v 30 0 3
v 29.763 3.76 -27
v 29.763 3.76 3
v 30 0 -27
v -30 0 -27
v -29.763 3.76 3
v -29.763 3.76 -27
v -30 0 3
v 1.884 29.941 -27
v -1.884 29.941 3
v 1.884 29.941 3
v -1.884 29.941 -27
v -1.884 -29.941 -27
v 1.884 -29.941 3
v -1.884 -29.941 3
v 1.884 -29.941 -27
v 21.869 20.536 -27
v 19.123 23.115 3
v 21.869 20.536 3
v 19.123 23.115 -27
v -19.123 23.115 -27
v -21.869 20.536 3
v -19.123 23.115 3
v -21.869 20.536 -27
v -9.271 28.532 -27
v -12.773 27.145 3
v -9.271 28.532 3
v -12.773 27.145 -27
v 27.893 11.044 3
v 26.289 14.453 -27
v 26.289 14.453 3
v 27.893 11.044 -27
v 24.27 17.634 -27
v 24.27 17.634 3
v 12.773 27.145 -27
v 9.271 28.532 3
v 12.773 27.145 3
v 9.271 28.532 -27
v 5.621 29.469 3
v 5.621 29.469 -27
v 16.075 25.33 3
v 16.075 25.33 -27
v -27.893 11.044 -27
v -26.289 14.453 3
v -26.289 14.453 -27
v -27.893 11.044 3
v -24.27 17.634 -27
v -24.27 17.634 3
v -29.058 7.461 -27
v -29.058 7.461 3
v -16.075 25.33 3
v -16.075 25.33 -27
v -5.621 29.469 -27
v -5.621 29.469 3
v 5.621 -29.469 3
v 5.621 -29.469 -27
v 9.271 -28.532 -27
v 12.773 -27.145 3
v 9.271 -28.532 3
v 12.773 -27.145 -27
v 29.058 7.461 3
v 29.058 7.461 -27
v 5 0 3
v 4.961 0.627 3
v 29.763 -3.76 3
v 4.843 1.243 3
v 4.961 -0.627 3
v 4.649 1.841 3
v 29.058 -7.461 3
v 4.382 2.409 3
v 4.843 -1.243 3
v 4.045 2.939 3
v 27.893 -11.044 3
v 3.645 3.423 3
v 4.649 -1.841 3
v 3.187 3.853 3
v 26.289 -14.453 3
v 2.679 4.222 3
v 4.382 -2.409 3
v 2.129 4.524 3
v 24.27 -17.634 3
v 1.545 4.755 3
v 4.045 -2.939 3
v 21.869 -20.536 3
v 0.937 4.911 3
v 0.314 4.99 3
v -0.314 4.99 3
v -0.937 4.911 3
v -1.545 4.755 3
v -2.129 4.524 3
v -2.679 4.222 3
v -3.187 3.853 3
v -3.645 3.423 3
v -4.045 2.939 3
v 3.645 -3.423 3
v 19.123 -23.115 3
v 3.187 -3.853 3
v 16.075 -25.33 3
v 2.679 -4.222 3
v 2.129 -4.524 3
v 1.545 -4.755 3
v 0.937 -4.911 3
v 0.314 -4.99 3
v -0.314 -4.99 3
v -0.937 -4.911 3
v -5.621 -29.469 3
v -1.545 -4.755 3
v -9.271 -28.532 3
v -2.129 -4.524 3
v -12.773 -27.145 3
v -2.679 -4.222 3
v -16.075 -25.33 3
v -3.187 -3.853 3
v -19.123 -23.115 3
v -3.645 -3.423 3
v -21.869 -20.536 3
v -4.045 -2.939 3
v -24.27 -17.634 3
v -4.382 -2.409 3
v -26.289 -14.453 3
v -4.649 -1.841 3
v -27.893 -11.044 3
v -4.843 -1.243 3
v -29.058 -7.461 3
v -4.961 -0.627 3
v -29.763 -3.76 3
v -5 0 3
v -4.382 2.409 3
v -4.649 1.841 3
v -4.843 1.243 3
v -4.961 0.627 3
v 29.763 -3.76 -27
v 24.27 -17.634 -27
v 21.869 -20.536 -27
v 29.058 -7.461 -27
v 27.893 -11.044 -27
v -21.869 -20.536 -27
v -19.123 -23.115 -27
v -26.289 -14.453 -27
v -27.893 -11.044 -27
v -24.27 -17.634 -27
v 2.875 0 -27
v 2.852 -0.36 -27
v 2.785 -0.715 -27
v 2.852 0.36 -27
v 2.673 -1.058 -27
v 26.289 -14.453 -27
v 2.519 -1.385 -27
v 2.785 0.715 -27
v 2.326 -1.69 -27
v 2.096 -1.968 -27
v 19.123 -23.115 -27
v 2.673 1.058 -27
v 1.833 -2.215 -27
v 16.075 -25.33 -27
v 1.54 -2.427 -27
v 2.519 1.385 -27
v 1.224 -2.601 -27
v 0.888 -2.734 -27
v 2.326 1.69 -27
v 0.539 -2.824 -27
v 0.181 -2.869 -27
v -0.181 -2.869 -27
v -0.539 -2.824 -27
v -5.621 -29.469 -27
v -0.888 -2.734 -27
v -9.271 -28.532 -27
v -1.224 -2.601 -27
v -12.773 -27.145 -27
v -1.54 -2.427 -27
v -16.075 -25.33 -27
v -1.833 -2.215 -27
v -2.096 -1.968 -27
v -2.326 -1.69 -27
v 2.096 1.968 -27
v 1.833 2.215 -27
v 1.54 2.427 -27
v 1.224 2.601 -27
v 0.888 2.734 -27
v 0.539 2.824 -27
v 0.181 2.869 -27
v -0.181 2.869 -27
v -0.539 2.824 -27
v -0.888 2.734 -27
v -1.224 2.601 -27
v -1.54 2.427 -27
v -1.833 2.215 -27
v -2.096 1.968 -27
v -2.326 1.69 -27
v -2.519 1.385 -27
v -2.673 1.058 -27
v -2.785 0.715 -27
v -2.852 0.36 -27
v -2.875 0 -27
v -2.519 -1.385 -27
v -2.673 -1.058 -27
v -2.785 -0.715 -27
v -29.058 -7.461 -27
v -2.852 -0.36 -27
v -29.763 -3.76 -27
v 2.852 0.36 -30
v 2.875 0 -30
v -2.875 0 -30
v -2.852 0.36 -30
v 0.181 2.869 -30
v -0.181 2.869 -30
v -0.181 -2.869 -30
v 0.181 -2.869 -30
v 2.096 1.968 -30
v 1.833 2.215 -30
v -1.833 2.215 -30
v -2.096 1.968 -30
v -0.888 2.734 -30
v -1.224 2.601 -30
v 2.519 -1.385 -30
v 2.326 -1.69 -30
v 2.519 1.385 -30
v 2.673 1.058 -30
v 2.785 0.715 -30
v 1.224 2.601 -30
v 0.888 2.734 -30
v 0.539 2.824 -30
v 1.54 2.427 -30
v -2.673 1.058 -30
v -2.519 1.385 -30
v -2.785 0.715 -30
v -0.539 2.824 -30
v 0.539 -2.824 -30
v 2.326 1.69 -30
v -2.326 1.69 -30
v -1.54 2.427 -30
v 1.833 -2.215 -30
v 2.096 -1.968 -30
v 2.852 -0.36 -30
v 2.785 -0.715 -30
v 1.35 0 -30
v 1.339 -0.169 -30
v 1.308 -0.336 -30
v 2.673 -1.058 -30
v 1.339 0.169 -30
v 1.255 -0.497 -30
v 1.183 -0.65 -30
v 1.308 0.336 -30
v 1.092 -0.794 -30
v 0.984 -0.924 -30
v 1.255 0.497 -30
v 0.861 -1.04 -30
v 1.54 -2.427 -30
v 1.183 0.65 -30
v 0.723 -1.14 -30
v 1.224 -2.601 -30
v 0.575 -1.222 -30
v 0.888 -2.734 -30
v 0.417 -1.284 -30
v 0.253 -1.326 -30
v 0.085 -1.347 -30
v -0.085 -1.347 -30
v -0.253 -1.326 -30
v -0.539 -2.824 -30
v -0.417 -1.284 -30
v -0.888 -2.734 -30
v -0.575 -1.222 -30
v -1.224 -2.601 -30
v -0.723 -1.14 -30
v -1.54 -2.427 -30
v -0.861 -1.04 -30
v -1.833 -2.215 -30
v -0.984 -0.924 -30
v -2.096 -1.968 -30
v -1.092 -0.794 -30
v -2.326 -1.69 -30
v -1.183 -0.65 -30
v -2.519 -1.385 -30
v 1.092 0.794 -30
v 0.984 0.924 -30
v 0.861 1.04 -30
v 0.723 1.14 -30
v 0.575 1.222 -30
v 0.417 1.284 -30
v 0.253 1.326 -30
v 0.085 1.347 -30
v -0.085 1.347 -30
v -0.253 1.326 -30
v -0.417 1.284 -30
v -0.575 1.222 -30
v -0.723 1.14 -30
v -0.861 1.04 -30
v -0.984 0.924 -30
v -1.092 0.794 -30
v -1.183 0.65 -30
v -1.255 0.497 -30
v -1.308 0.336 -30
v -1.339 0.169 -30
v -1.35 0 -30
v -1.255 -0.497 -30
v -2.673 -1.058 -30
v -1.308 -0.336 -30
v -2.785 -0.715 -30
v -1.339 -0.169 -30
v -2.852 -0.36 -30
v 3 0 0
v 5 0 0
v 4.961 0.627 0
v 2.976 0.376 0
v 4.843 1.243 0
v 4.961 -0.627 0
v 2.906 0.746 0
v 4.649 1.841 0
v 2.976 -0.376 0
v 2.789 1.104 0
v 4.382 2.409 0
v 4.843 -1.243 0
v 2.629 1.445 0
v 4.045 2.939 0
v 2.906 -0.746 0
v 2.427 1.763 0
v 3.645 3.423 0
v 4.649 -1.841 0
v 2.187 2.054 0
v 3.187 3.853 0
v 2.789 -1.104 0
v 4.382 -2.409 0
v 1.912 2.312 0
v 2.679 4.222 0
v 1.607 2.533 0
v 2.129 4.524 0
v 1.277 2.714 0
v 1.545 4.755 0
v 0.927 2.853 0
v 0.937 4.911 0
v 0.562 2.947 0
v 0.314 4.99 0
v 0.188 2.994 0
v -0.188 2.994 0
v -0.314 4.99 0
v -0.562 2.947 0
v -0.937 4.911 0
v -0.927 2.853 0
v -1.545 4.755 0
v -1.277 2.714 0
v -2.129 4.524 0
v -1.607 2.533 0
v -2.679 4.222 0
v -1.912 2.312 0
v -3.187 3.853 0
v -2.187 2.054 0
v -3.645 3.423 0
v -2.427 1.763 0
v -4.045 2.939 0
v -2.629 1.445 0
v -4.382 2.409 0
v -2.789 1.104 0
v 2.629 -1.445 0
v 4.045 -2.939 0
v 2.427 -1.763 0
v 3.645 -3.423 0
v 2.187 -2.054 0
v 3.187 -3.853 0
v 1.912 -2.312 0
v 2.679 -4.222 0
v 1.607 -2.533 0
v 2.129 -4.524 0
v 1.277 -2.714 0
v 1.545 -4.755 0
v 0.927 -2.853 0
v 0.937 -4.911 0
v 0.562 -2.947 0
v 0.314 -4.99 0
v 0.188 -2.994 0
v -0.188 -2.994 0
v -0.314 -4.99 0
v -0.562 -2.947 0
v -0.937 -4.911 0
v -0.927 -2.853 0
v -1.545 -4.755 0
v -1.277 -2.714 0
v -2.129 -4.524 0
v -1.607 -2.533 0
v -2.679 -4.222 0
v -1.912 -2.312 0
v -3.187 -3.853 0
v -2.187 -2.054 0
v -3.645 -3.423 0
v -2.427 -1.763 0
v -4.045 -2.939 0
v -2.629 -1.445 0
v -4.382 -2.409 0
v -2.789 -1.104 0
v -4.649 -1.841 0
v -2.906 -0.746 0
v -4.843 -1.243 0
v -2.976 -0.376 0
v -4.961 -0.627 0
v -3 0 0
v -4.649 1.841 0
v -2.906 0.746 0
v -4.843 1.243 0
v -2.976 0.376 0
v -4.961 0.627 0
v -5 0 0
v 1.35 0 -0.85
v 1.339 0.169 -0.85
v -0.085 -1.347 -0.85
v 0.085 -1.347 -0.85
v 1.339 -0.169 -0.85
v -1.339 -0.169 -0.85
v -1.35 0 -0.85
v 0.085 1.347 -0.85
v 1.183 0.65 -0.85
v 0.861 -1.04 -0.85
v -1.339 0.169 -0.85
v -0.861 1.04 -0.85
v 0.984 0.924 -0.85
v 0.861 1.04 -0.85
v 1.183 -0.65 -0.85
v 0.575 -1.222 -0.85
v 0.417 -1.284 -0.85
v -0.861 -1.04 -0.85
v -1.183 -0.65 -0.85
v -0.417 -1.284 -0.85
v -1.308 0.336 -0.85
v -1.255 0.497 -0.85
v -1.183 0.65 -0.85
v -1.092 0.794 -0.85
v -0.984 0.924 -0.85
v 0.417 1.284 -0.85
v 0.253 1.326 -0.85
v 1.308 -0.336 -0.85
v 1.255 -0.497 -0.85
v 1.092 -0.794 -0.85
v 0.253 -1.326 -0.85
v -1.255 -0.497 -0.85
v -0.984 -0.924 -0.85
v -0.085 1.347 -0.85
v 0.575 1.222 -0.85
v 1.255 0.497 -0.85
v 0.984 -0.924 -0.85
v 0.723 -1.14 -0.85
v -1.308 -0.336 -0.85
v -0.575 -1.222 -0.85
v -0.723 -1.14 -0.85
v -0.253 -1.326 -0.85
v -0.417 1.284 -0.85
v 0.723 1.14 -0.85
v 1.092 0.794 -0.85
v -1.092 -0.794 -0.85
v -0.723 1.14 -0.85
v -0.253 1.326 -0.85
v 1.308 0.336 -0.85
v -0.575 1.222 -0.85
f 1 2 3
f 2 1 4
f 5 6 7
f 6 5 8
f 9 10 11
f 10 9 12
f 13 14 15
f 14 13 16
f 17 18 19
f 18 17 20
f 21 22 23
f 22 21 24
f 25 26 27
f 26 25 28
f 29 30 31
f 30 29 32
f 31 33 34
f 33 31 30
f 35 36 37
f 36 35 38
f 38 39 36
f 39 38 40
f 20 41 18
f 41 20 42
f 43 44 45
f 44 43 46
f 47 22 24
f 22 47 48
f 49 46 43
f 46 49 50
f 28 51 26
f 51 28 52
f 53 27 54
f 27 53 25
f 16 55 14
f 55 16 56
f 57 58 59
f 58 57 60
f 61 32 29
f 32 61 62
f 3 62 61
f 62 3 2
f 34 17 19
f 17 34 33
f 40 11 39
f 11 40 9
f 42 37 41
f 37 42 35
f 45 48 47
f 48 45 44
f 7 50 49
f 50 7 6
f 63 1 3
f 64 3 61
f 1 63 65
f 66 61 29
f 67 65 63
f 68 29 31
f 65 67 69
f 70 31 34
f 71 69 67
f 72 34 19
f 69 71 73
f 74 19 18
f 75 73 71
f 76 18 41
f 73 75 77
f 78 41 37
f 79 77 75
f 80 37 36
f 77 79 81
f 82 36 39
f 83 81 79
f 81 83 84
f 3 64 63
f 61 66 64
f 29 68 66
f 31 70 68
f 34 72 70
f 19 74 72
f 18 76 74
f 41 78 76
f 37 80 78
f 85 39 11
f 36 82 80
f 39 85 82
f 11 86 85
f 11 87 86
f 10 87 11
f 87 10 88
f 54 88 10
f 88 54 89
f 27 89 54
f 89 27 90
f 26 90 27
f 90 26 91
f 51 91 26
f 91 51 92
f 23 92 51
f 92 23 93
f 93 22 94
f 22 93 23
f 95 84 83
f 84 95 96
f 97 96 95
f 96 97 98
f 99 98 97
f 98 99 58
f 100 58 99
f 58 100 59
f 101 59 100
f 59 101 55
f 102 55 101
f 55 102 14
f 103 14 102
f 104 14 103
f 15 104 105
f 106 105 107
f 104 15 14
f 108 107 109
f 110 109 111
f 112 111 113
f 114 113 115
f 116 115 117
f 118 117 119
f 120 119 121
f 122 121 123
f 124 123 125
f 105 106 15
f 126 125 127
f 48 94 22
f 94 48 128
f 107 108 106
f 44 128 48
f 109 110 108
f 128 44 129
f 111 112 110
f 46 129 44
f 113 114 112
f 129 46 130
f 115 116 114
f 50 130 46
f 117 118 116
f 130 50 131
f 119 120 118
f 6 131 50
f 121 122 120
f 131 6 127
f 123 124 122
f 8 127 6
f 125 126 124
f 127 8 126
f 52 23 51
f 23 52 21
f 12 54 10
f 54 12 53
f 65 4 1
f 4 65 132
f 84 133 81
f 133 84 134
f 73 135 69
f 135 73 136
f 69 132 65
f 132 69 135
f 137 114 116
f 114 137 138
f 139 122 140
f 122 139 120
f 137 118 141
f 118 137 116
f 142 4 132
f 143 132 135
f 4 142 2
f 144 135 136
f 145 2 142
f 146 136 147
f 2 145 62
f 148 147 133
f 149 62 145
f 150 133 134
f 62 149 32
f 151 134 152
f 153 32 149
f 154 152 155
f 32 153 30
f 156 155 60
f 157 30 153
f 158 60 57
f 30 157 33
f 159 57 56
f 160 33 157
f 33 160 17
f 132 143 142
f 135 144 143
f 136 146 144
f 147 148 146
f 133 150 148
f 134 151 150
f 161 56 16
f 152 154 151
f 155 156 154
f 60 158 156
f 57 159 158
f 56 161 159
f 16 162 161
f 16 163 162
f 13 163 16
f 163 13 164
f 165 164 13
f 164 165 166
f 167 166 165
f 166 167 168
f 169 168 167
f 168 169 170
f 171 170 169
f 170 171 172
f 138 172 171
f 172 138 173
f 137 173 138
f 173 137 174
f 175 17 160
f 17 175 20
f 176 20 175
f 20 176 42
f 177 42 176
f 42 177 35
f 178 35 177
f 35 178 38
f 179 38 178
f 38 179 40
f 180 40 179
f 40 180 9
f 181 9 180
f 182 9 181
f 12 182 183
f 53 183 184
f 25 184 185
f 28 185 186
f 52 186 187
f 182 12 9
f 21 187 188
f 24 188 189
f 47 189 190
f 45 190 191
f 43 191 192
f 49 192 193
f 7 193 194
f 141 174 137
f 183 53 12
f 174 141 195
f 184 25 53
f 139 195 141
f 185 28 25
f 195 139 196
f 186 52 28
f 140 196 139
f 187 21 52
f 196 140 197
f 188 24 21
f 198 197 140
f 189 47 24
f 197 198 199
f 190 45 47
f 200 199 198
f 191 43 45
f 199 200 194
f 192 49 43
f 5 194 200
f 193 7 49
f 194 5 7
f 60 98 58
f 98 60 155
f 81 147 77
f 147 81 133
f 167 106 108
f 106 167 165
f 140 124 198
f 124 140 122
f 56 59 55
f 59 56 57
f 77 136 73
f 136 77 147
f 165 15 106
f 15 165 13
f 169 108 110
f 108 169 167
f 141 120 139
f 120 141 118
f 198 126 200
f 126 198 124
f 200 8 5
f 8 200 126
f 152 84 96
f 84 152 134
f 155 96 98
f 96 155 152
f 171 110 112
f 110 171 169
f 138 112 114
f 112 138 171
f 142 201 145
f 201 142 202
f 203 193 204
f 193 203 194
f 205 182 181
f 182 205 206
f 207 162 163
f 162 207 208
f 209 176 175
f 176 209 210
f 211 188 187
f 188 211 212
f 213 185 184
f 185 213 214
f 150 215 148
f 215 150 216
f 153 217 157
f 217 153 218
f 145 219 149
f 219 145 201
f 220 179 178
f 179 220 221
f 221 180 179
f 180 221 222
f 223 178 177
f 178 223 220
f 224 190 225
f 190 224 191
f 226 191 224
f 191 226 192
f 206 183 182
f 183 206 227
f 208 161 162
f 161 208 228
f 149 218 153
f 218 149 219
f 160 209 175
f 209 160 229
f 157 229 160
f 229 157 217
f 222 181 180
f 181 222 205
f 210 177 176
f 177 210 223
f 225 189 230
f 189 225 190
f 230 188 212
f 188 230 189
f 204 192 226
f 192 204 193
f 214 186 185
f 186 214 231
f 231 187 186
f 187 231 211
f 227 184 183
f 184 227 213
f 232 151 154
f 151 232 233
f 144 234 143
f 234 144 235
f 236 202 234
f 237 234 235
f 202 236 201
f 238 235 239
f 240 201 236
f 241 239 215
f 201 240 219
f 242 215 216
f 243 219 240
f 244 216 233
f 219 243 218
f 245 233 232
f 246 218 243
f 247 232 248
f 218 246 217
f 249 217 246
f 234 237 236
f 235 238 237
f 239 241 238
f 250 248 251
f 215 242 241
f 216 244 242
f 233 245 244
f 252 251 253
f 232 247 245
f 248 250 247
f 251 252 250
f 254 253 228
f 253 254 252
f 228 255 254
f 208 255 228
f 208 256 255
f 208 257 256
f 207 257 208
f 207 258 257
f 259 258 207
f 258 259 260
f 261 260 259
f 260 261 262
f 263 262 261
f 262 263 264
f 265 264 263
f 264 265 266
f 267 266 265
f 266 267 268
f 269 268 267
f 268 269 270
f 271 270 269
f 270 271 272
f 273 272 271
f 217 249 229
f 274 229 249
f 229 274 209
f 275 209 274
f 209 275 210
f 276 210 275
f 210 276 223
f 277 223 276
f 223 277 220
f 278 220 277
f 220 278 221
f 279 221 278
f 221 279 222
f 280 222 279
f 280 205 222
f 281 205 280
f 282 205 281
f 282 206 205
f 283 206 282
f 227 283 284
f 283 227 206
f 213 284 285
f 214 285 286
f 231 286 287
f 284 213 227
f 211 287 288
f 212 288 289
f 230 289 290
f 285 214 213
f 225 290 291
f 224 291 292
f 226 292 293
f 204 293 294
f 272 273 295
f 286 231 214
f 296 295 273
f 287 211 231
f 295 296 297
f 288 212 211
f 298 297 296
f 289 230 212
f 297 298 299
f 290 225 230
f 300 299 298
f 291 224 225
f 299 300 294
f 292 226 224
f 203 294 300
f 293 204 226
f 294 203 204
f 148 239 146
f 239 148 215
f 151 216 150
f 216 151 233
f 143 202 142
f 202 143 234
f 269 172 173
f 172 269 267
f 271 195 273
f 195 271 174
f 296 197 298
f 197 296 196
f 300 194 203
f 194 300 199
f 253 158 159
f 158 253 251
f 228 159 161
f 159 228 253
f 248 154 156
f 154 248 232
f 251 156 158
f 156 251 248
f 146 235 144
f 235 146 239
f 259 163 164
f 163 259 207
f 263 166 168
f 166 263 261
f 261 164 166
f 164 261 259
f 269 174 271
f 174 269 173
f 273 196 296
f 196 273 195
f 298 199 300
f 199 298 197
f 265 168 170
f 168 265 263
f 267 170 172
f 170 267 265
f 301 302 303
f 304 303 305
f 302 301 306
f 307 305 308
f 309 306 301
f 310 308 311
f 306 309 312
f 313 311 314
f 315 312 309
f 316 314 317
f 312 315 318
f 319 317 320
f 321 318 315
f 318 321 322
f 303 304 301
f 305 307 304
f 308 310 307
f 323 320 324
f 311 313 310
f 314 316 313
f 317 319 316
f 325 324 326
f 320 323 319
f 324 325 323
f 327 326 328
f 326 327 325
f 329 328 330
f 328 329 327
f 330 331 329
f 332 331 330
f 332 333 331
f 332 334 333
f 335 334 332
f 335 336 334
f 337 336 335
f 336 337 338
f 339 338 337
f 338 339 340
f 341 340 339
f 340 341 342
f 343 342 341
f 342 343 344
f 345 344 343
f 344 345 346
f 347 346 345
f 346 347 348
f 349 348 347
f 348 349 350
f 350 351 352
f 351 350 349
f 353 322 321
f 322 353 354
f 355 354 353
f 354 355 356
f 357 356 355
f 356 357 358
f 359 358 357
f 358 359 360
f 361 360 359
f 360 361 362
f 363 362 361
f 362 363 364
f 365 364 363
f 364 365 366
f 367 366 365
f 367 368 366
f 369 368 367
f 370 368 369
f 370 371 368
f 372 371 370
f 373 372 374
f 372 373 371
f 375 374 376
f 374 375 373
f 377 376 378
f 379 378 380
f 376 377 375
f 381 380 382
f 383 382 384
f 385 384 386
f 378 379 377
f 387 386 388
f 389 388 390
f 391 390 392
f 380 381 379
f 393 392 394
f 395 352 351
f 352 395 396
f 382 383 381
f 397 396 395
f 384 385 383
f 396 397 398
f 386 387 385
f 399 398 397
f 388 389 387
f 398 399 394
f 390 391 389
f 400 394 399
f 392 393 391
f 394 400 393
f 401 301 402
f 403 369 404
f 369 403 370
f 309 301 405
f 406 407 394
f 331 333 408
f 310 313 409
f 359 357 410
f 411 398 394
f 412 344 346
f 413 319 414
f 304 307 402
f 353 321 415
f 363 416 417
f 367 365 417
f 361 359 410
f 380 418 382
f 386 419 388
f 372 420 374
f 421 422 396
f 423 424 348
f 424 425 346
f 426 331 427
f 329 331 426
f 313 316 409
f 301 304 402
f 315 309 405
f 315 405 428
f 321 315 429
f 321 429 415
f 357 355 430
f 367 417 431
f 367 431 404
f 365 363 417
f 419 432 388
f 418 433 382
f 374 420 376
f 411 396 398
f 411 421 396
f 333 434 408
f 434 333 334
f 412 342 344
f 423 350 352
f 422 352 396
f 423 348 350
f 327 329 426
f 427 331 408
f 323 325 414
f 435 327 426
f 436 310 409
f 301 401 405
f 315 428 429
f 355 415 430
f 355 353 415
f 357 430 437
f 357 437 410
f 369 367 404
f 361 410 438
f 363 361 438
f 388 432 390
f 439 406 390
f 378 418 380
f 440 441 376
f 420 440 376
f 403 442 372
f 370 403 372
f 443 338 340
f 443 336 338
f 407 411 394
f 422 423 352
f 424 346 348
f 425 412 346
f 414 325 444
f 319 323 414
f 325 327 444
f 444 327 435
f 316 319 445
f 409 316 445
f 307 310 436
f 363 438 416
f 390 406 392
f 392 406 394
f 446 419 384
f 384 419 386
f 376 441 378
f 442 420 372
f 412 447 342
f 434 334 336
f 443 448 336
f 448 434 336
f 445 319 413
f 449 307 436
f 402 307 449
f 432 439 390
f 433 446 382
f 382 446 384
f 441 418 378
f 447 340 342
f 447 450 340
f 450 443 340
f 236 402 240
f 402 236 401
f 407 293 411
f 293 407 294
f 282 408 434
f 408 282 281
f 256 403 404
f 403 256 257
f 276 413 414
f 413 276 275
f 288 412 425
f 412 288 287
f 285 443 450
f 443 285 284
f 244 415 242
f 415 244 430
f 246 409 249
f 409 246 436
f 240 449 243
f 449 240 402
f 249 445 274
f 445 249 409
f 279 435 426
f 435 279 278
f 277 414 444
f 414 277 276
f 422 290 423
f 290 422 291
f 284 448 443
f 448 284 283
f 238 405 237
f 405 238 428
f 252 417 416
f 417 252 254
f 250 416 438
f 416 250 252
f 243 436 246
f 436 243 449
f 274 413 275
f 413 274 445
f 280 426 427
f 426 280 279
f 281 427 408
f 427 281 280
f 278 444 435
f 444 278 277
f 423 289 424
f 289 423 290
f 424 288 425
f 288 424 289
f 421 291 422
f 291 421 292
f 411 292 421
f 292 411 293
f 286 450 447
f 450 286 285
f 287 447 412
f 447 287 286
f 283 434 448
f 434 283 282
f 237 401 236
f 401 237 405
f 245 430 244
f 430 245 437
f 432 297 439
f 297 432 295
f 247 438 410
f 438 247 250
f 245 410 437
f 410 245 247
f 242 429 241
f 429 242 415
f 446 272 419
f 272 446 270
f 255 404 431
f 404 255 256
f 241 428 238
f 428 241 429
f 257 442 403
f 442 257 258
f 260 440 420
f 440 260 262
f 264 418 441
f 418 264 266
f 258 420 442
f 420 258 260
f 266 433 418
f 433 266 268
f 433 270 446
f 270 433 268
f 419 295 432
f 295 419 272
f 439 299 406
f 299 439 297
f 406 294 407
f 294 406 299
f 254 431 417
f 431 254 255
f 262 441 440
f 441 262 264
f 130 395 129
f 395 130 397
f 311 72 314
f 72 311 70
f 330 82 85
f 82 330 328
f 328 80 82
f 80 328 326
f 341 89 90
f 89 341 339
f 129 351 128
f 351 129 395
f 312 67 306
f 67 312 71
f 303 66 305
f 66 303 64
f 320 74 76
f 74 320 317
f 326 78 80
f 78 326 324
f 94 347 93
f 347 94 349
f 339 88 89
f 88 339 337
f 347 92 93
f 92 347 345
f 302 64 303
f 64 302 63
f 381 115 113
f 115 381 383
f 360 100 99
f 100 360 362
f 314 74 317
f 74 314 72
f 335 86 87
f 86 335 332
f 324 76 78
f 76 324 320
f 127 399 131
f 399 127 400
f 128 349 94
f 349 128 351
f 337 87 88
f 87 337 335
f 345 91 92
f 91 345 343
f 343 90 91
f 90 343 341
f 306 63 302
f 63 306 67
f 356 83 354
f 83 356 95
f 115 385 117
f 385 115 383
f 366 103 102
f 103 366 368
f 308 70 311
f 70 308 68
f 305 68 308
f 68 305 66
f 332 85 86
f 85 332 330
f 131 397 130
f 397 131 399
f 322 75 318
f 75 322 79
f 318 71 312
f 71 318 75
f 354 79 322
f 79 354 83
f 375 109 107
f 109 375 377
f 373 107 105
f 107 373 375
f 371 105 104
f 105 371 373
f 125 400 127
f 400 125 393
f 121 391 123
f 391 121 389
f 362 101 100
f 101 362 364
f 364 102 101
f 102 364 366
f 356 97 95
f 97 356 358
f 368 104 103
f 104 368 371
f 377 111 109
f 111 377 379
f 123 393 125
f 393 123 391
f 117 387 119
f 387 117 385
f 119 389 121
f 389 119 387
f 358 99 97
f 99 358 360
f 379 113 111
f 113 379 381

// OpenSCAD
$fn = 50;

difference() {
	union() {
		translate(v = [0, 0, -27.0]) {
			cylinder(h = 30, r = 30.0);
		}
		#translate(v = [0, 0, -30.0]) {
			cylinder(h = 30, r = 2.875);
		}
	}
	union() {
		translate(v = [0, 0, 0]) {
			rotate(a = [0, 0, 0]) {
				difference() {
					union() {
						translate(v = [0, 0, -30.0]) {
							cylinder(h = 30, r = 1.0);
						}
						translate(v = [0, 0, -0.85]) {
							cylinder(h = 0.85, r1 = 1.35, r2 = 3.0);
						}
						translate(v = [0, 0, -30.0]) {
							cylinder(h = 30, r = 1.35);
						}
						translate(v = [0, 0, -30.0]) {
							cylinder(h = 30, r = 1.0);
						}
					}
					union();
				}
			}
		}
		#cylinder(h = 3, r = 5.0);
	}
}
